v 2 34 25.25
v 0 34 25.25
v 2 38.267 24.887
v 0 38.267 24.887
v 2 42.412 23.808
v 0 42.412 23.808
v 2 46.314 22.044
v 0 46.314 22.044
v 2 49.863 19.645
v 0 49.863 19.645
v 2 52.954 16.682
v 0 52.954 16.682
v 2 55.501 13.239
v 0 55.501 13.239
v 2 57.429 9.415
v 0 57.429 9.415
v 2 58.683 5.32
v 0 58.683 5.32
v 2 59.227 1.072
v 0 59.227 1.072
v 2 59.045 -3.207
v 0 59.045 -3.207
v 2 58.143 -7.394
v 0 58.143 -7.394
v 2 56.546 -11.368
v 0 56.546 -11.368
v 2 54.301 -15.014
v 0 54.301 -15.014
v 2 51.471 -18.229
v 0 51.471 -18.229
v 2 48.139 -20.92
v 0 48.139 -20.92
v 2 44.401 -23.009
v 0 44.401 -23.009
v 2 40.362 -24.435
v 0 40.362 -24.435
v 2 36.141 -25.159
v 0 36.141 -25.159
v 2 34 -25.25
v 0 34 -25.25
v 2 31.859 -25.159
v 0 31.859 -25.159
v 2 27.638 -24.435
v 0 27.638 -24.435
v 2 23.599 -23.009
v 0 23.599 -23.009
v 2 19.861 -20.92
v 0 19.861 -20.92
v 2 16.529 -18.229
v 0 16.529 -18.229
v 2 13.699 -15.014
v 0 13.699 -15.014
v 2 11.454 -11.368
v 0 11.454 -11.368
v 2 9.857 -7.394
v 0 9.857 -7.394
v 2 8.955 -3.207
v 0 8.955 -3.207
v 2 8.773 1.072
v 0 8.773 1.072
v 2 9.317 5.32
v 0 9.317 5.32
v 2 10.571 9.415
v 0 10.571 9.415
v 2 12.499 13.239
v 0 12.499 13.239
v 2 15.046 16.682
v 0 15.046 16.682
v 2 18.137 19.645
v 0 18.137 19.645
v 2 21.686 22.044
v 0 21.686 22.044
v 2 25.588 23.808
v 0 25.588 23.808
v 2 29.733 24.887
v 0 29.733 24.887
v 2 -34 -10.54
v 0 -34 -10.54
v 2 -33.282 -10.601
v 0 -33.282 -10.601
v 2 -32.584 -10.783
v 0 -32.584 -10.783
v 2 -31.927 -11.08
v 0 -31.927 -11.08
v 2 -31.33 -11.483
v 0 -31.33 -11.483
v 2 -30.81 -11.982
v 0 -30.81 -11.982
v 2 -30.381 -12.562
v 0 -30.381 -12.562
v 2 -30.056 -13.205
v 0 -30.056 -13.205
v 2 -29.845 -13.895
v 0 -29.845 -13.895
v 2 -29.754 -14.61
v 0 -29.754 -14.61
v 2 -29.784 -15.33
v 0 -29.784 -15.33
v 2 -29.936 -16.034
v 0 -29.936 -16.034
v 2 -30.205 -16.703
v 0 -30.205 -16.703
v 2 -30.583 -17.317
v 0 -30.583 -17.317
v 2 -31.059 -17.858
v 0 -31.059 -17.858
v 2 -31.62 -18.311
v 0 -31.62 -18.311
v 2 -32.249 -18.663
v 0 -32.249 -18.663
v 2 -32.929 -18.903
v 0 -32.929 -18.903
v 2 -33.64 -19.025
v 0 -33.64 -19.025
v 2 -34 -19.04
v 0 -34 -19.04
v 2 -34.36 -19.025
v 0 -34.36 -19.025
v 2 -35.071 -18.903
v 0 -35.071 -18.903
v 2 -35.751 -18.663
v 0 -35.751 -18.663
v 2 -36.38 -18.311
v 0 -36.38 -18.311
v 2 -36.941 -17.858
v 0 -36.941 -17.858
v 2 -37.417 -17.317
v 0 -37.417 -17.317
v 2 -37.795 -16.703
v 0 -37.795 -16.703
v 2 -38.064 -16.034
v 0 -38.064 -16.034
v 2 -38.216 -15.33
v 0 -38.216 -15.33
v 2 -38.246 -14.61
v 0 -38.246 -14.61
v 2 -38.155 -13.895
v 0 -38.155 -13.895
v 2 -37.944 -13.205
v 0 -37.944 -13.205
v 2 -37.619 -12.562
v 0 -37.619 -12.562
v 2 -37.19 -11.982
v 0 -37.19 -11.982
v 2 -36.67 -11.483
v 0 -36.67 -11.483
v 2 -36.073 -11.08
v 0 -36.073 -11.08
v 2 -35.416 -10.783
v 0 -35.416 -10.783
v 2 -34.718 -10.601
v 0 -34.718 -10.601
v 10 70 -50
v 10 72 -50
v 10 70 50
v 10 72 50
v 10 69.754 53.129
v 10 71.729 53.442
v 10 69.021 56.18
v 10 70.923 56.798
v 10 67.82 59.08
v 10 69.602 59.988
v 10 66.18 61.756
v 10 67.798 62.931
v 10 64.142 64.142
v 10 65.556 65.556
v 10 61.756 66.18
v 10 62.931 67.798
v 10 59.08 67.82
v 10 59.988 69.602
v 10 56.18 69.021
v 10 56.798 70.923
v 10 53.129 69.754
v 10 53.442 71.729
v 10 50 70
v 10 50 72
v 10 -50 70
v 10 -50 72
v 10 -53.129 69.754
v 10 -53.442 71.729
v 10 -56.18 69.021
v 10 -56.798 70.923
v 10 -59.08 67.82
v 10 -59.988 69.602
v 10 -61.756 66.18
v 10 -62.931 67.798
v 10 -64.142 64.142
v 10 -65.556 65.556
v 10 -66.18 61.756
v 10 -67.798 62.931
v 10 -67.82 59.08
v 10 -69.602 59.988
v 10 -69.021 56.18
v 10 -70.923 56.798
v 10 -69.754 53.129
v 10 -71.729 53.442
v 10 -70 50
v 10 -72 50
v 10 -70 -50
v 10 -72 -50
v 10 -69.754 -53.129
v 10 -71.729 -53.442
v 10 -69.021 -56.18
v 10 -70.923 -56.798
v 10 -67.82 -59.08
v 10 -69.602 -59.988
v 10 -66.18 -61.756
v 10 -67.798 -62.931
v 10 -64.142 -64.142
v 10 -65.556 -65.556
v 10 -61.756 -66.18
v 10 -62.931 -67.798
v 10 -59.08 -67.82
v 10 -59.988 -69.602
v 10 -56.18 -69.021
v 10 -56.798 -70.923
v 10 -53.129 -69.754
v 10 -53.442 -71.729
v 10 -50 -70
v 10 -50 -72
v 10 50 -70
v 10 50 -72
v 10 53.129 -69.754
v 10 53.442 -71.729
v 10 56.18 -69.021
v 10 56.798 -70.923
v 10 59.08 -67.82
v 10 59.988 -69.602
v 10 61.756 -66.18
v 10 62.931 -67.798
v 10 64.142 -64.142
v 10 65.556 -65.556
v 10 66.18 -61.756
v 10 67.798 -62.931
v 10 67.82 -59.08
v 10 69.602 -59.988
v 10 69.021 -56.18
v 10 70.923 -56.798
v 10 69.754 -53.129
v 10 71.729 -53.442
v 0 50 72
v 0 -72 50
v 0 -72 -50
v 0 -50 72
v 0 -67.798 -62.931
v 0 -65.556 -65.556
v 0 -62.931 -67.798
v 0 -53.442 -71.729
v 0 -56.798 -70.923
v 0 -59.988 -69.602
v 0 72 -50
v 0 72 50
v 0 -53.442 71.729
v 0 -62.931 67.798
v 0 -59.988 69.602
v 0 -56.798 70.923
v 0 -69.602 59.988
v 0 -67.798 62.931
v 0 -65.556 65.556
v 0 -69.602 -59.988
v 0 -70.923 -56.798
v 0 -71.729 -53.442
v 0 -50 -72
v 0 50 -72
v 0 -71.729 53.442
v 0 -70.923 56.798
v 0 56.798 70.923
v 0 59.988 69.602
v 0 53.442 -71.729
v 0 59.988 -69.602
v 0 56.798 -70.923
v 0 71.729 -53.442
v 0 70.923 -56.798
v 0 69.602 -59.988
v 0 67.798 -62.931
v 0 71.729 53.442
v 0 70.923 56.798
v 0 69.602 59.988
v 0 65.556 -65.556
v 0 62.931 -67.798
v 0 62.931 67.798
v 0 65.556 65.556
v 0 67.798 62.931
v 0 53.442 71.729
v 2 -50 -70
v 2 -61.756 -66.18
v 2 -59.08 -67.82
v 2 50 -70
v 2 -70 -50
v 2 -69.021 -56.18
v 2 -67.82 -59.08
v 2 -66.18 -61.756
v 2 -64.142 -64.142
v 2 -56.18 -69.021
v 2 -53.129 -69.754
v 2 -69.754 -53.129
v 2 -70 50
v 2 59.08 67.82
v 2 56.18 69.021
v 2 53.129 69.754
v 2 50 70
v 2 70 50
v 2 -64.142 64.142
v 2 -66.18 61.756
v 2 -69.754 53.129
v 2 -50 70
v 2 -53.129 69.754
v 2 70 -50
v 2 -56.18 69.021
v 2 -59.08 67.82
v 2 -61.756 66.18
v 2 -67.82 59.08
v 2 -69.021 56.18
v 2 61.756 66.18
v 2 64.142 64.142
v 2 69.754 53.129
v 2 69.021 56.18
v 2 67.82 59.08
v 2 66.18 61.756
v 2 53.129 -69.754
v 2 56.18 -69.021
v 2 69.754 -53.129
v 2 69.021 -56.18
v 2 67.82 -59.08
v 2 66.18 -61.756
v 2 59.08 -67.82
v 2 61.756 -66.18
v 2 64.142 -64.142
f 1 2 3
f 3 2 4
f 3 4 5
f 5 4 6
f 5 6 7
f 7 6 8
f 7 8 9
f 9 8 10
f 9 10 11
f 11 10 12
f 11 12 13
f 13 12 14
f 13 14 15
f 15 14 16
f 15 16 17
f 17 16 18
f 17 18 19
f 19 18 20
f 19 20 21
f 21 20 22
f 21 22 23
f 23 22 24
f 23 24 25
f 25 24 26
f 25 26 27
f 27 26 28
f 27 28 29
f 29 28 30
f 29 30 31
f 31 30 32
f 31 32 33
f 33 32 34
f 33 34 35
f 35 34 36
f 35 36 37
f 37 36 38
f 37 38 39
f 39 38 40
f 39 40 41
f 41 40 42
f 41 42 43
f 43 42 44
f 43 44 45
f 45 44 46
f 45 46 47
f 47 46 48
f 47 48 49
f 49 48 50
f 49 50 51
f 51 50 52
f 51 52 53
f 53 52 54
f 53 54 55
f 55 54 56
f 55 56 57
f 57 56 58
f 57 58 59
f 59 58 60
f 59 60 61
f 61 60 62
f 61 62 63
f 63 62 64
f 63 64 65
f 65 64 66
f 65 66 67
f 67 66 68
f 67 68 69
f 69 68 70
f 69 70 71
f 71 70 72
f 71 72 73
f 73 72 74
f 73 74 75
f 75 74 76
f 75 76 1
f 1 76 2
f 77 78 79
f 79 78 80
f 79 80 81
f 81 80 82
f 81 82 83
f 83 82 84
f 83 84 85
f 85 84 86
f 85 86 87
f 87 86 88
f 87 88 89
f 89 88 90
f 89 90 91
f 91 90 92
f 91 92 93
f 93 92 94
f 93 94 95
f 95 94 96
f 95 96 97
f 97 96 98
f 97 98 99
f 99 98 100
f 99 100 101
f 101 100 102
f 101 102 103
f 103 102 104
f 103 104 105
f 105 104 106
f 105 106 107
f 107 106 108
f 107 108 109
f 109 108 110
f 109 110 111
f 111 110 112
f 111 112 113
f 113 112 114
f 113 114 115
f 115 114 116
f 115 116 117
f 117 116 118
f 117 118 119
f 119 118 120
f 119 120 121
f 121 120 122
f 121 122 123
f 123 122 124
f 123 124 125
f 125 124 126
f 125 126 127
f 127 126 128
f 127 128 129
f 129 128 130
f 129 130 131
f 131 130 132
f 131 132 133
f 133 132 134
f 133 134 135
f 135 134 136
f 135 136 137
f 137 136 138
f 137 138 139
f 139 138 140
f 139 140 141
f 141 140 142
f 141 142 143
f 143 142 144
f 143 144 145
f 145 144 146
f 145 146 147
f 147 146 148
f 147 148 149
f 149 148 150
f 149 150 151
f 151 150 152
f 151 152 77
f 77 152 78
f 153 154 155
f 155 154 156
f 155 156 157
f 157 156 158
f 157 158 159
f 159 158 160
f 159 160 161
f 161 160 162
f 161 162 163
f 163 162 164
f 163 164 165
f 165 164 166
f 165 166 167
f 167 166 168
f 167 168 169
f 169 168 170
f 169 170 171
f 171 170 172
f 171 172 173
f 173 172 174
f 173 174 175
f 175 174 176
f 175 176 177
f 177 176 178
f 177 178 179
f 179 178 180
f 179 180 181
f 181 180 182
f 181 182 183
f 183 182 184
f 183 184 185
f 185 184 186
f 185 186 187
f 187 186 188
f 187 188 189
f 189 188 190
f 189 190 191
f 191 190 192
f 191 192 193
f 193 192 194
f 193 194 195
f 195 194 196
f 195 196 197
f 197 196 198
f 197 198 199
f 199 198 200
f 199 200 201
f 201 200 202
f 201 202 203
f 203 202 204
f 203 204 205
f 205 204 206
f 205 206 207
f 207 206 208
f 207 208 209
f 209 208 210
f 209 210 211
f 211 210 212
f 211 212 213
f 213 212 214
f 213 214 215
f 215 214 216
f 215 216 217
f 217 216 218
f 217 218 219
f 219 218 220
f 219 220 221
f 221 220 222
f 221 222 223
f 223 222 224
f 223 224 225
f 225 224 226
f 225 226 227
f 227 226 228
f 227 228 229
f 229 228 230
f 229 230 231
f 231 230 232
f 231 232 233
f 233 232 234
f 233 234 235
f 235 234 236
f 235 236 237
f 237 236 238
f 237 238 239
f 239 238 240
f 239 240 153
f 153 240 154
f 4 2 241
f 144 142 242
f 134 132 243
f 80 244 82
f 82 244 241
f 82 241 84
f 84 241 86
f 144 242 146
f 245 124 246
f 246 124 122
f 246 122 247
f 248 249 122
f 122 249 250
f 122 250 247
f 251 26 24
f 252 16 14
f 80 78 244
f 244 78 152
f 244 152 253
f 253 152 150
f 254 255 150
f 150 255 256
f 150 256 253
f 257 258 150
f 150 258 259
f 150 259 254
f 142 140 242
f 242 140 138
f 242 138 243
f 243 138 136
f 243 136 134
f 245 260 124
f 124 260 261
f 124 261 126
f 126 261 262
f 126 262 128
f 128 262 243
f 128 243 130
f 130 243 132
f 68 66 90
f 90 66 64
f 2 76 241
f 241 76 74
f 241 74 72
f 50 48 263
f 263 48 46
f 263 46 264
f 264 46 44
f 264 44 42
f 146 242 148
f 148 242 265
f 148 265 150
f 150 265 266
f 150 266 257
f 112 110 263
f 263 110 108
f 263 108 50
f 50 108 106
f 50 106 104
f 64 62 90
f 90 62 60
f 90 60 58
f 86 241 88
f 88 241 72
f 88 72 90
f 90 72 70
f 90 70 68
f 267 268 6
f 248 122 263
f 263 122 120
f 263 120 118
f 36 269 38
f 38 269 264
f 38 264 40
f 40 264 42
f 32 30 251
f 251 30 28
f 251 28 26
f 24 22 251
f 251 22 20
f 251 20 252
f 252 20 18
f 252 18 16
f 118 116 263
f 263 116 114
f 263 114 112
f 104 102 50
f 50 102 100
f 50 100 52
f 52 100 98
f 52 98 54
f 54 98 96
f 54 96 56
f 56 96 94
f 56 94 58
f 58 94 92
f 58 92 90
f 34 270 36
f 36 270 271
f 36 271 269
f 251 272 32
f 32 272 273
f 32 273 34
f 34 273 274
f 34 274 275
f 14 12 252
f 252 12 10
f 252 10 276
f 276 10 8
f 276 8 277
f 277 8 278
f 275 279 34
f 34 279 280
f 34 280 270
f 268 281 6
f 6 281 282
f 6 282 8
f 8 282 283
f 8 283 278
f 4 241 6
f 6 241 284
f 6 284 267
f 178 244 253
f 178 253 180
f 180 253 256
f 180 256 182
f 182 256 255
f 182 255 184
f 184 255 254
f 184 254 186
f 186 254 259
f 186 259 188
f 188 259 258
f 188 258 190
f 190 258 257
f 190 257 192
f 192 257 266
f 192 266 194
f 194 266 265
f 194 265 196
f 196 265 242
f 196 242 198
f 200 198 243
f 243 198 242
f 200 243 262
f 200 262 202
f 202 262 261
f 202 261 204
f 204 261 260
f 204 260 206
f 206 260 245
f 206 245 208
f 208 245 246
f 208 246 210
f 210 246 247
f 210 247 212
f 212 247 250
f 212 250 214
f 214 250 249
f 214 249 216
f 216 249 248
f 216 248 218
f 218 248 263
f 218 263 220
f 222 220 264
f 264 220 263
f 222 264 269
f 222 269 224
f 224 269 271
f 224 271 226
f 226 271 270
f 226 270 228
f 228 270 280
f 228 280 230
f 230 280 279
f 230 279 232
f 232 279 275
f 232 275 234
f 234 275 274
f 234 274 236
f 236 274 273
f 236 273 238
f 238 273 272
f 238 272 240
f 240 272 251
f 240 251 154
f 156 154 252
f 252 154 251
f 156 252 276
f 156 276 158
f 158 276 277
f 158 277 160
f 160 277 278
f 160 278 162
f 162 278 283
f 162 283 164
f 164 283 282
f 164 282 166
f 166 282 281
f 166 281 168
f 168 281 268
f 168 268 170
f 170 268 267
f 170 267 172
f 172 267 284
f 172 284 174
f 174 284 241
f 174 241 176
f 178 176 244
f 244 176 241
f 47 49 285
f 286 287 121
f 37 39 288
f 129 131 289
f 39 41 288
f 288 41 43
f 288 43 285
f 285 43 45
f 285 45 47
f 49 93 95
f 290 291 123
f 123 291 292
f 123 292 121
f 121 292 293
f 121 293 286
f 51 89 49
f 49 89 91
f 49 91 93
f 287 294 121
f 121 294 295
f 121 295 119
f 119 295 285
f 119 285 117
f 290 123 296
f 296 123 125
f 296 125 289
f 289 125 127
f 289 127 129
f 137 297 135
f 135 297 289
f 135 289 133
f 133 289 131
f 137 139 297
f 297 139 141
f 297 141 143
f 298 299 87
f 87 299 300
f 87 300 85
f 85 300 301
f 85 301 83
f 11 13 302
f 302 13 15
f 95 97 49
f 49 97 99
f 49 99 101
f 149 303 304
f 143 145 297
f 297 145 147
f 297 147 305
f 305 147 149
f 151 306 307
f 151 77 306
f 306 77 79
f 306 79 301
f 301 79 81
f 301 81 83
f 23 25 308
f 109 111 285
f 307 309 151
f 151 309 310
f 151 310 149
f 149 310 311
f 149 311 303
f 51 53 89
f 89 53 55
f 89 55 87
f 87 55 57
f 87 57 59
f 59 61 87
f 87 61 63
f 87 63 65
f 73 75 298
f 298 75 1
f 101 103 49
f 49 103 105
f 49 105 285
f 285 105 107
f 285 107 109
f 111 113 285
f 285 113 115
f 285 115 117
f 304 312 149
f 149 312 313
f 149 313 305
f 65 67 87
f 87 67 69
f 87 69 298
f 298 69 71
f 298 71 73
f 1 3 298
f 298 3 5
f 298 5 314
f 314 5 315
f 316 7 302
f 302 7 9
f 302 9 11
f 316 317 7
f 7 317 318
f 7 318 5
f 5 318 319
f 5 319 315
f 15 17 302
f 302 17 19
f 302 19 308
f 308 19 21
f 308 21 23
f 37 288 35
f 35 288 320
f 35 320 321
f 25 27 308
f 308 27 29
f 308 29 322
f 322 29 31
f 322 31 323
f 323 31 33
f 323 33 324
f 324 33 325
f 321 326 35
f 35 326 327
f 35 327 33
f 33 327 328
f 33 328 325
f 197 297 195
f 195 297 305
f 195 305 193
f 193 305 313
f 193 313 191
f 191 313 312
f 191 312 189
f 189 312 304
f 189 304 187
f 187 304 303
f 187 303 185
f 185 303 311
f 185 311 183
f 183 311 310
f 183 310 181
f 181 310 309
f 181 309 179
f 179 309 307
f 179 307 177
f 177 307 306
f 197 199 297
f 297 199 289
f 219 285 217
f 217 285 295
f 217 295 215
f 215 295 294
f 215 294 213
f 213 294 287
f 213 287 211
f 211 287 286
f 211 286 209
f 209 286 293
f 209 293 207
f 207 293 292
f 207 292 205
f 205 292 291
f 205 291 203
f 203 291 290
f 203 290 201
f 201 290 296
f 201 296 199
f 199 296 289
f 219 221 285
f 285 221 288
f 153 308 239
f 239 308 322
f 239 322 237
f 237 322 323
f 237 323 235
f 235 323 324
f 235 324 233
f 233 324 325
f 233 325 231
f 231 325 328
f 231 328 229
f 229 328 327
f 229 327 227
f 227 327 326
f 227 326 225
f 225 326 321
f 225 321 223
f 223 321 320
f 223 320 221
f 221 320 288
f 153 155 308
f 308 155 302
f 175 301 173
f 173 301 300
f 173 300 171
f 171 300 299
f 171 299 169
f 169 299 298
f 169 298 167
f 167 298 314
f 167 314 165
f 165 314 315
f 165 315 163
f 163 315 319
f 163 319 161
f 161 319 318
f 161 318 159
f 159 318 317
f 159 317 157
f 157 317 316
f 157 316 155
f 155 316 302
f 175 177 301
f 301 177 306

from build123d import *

# Parameters (mm, degrees)
SKETCH1_R           = 25.25
SKETCH1_R_2         = 4.25
BOSS_EXTRUDE1_DEPTH = 10
SHELL1_T            = -2
SKETCH2_R           = 63.400619105
CUT_EXTRUDE1_DEPTH  = 29


with BuildPart() as part:
    # Sketch1 → Boss-Extrude1 (new body)
    with BuildSketch(Plane.YZ):
        with BuildLine():
            Line((-50, 72), (50, 72))
            ThreePointArc((50, 72), (65.556349186, 65.556349186), (72, 50))
            Line((72, 50), (72, -50))
            ThreePointArc((72, -50), (65.556349186, -65.556349186), (50, -72))
            Line((50, -72), (-50, -72))
            ThreePointArc((-50, -72), (-65.556349186, -65.556349186), (-72, -50))
            Line((-72, -50), (-72, 50))
            ThreePointArc((-72, 50), (-65.556349186, 65.556349186), (-50, 72))
        make_face()
        with Locations(Location((34, 0, 0), (0, 0, 270))):
            Circle(SKETCH1_R, mode=Mode.SUBTRACT)
        with Locations(Location((-34, -14.79, 0), (0, 0, 270))):
            Circle(SKETCH1_R_2, mode=Mode.SUBTRACT)
    extrude(amount=BOSS_EXTRUDE1_DEPTH)

    # Shell1
    shell1_openings = [part.faces().sort_by_distance(p)[0] for p in [
        (10, -3.623679056, 0.045959525),
    ]]
    offset(amount=SHELL1_T, openings=shell1_openings, kind=Kind.INTERSECTION)

    # Sketch2 → Cut-Extrude1 (cut)
    with BuildSketch(Plane.YZ.offset(2)):
        Circle(SKETCH2_R)
    extrude(amount=CUT_EXTRUDE1_DEPTH, mode=Mode.SUBTRACT)


solid = part.part
